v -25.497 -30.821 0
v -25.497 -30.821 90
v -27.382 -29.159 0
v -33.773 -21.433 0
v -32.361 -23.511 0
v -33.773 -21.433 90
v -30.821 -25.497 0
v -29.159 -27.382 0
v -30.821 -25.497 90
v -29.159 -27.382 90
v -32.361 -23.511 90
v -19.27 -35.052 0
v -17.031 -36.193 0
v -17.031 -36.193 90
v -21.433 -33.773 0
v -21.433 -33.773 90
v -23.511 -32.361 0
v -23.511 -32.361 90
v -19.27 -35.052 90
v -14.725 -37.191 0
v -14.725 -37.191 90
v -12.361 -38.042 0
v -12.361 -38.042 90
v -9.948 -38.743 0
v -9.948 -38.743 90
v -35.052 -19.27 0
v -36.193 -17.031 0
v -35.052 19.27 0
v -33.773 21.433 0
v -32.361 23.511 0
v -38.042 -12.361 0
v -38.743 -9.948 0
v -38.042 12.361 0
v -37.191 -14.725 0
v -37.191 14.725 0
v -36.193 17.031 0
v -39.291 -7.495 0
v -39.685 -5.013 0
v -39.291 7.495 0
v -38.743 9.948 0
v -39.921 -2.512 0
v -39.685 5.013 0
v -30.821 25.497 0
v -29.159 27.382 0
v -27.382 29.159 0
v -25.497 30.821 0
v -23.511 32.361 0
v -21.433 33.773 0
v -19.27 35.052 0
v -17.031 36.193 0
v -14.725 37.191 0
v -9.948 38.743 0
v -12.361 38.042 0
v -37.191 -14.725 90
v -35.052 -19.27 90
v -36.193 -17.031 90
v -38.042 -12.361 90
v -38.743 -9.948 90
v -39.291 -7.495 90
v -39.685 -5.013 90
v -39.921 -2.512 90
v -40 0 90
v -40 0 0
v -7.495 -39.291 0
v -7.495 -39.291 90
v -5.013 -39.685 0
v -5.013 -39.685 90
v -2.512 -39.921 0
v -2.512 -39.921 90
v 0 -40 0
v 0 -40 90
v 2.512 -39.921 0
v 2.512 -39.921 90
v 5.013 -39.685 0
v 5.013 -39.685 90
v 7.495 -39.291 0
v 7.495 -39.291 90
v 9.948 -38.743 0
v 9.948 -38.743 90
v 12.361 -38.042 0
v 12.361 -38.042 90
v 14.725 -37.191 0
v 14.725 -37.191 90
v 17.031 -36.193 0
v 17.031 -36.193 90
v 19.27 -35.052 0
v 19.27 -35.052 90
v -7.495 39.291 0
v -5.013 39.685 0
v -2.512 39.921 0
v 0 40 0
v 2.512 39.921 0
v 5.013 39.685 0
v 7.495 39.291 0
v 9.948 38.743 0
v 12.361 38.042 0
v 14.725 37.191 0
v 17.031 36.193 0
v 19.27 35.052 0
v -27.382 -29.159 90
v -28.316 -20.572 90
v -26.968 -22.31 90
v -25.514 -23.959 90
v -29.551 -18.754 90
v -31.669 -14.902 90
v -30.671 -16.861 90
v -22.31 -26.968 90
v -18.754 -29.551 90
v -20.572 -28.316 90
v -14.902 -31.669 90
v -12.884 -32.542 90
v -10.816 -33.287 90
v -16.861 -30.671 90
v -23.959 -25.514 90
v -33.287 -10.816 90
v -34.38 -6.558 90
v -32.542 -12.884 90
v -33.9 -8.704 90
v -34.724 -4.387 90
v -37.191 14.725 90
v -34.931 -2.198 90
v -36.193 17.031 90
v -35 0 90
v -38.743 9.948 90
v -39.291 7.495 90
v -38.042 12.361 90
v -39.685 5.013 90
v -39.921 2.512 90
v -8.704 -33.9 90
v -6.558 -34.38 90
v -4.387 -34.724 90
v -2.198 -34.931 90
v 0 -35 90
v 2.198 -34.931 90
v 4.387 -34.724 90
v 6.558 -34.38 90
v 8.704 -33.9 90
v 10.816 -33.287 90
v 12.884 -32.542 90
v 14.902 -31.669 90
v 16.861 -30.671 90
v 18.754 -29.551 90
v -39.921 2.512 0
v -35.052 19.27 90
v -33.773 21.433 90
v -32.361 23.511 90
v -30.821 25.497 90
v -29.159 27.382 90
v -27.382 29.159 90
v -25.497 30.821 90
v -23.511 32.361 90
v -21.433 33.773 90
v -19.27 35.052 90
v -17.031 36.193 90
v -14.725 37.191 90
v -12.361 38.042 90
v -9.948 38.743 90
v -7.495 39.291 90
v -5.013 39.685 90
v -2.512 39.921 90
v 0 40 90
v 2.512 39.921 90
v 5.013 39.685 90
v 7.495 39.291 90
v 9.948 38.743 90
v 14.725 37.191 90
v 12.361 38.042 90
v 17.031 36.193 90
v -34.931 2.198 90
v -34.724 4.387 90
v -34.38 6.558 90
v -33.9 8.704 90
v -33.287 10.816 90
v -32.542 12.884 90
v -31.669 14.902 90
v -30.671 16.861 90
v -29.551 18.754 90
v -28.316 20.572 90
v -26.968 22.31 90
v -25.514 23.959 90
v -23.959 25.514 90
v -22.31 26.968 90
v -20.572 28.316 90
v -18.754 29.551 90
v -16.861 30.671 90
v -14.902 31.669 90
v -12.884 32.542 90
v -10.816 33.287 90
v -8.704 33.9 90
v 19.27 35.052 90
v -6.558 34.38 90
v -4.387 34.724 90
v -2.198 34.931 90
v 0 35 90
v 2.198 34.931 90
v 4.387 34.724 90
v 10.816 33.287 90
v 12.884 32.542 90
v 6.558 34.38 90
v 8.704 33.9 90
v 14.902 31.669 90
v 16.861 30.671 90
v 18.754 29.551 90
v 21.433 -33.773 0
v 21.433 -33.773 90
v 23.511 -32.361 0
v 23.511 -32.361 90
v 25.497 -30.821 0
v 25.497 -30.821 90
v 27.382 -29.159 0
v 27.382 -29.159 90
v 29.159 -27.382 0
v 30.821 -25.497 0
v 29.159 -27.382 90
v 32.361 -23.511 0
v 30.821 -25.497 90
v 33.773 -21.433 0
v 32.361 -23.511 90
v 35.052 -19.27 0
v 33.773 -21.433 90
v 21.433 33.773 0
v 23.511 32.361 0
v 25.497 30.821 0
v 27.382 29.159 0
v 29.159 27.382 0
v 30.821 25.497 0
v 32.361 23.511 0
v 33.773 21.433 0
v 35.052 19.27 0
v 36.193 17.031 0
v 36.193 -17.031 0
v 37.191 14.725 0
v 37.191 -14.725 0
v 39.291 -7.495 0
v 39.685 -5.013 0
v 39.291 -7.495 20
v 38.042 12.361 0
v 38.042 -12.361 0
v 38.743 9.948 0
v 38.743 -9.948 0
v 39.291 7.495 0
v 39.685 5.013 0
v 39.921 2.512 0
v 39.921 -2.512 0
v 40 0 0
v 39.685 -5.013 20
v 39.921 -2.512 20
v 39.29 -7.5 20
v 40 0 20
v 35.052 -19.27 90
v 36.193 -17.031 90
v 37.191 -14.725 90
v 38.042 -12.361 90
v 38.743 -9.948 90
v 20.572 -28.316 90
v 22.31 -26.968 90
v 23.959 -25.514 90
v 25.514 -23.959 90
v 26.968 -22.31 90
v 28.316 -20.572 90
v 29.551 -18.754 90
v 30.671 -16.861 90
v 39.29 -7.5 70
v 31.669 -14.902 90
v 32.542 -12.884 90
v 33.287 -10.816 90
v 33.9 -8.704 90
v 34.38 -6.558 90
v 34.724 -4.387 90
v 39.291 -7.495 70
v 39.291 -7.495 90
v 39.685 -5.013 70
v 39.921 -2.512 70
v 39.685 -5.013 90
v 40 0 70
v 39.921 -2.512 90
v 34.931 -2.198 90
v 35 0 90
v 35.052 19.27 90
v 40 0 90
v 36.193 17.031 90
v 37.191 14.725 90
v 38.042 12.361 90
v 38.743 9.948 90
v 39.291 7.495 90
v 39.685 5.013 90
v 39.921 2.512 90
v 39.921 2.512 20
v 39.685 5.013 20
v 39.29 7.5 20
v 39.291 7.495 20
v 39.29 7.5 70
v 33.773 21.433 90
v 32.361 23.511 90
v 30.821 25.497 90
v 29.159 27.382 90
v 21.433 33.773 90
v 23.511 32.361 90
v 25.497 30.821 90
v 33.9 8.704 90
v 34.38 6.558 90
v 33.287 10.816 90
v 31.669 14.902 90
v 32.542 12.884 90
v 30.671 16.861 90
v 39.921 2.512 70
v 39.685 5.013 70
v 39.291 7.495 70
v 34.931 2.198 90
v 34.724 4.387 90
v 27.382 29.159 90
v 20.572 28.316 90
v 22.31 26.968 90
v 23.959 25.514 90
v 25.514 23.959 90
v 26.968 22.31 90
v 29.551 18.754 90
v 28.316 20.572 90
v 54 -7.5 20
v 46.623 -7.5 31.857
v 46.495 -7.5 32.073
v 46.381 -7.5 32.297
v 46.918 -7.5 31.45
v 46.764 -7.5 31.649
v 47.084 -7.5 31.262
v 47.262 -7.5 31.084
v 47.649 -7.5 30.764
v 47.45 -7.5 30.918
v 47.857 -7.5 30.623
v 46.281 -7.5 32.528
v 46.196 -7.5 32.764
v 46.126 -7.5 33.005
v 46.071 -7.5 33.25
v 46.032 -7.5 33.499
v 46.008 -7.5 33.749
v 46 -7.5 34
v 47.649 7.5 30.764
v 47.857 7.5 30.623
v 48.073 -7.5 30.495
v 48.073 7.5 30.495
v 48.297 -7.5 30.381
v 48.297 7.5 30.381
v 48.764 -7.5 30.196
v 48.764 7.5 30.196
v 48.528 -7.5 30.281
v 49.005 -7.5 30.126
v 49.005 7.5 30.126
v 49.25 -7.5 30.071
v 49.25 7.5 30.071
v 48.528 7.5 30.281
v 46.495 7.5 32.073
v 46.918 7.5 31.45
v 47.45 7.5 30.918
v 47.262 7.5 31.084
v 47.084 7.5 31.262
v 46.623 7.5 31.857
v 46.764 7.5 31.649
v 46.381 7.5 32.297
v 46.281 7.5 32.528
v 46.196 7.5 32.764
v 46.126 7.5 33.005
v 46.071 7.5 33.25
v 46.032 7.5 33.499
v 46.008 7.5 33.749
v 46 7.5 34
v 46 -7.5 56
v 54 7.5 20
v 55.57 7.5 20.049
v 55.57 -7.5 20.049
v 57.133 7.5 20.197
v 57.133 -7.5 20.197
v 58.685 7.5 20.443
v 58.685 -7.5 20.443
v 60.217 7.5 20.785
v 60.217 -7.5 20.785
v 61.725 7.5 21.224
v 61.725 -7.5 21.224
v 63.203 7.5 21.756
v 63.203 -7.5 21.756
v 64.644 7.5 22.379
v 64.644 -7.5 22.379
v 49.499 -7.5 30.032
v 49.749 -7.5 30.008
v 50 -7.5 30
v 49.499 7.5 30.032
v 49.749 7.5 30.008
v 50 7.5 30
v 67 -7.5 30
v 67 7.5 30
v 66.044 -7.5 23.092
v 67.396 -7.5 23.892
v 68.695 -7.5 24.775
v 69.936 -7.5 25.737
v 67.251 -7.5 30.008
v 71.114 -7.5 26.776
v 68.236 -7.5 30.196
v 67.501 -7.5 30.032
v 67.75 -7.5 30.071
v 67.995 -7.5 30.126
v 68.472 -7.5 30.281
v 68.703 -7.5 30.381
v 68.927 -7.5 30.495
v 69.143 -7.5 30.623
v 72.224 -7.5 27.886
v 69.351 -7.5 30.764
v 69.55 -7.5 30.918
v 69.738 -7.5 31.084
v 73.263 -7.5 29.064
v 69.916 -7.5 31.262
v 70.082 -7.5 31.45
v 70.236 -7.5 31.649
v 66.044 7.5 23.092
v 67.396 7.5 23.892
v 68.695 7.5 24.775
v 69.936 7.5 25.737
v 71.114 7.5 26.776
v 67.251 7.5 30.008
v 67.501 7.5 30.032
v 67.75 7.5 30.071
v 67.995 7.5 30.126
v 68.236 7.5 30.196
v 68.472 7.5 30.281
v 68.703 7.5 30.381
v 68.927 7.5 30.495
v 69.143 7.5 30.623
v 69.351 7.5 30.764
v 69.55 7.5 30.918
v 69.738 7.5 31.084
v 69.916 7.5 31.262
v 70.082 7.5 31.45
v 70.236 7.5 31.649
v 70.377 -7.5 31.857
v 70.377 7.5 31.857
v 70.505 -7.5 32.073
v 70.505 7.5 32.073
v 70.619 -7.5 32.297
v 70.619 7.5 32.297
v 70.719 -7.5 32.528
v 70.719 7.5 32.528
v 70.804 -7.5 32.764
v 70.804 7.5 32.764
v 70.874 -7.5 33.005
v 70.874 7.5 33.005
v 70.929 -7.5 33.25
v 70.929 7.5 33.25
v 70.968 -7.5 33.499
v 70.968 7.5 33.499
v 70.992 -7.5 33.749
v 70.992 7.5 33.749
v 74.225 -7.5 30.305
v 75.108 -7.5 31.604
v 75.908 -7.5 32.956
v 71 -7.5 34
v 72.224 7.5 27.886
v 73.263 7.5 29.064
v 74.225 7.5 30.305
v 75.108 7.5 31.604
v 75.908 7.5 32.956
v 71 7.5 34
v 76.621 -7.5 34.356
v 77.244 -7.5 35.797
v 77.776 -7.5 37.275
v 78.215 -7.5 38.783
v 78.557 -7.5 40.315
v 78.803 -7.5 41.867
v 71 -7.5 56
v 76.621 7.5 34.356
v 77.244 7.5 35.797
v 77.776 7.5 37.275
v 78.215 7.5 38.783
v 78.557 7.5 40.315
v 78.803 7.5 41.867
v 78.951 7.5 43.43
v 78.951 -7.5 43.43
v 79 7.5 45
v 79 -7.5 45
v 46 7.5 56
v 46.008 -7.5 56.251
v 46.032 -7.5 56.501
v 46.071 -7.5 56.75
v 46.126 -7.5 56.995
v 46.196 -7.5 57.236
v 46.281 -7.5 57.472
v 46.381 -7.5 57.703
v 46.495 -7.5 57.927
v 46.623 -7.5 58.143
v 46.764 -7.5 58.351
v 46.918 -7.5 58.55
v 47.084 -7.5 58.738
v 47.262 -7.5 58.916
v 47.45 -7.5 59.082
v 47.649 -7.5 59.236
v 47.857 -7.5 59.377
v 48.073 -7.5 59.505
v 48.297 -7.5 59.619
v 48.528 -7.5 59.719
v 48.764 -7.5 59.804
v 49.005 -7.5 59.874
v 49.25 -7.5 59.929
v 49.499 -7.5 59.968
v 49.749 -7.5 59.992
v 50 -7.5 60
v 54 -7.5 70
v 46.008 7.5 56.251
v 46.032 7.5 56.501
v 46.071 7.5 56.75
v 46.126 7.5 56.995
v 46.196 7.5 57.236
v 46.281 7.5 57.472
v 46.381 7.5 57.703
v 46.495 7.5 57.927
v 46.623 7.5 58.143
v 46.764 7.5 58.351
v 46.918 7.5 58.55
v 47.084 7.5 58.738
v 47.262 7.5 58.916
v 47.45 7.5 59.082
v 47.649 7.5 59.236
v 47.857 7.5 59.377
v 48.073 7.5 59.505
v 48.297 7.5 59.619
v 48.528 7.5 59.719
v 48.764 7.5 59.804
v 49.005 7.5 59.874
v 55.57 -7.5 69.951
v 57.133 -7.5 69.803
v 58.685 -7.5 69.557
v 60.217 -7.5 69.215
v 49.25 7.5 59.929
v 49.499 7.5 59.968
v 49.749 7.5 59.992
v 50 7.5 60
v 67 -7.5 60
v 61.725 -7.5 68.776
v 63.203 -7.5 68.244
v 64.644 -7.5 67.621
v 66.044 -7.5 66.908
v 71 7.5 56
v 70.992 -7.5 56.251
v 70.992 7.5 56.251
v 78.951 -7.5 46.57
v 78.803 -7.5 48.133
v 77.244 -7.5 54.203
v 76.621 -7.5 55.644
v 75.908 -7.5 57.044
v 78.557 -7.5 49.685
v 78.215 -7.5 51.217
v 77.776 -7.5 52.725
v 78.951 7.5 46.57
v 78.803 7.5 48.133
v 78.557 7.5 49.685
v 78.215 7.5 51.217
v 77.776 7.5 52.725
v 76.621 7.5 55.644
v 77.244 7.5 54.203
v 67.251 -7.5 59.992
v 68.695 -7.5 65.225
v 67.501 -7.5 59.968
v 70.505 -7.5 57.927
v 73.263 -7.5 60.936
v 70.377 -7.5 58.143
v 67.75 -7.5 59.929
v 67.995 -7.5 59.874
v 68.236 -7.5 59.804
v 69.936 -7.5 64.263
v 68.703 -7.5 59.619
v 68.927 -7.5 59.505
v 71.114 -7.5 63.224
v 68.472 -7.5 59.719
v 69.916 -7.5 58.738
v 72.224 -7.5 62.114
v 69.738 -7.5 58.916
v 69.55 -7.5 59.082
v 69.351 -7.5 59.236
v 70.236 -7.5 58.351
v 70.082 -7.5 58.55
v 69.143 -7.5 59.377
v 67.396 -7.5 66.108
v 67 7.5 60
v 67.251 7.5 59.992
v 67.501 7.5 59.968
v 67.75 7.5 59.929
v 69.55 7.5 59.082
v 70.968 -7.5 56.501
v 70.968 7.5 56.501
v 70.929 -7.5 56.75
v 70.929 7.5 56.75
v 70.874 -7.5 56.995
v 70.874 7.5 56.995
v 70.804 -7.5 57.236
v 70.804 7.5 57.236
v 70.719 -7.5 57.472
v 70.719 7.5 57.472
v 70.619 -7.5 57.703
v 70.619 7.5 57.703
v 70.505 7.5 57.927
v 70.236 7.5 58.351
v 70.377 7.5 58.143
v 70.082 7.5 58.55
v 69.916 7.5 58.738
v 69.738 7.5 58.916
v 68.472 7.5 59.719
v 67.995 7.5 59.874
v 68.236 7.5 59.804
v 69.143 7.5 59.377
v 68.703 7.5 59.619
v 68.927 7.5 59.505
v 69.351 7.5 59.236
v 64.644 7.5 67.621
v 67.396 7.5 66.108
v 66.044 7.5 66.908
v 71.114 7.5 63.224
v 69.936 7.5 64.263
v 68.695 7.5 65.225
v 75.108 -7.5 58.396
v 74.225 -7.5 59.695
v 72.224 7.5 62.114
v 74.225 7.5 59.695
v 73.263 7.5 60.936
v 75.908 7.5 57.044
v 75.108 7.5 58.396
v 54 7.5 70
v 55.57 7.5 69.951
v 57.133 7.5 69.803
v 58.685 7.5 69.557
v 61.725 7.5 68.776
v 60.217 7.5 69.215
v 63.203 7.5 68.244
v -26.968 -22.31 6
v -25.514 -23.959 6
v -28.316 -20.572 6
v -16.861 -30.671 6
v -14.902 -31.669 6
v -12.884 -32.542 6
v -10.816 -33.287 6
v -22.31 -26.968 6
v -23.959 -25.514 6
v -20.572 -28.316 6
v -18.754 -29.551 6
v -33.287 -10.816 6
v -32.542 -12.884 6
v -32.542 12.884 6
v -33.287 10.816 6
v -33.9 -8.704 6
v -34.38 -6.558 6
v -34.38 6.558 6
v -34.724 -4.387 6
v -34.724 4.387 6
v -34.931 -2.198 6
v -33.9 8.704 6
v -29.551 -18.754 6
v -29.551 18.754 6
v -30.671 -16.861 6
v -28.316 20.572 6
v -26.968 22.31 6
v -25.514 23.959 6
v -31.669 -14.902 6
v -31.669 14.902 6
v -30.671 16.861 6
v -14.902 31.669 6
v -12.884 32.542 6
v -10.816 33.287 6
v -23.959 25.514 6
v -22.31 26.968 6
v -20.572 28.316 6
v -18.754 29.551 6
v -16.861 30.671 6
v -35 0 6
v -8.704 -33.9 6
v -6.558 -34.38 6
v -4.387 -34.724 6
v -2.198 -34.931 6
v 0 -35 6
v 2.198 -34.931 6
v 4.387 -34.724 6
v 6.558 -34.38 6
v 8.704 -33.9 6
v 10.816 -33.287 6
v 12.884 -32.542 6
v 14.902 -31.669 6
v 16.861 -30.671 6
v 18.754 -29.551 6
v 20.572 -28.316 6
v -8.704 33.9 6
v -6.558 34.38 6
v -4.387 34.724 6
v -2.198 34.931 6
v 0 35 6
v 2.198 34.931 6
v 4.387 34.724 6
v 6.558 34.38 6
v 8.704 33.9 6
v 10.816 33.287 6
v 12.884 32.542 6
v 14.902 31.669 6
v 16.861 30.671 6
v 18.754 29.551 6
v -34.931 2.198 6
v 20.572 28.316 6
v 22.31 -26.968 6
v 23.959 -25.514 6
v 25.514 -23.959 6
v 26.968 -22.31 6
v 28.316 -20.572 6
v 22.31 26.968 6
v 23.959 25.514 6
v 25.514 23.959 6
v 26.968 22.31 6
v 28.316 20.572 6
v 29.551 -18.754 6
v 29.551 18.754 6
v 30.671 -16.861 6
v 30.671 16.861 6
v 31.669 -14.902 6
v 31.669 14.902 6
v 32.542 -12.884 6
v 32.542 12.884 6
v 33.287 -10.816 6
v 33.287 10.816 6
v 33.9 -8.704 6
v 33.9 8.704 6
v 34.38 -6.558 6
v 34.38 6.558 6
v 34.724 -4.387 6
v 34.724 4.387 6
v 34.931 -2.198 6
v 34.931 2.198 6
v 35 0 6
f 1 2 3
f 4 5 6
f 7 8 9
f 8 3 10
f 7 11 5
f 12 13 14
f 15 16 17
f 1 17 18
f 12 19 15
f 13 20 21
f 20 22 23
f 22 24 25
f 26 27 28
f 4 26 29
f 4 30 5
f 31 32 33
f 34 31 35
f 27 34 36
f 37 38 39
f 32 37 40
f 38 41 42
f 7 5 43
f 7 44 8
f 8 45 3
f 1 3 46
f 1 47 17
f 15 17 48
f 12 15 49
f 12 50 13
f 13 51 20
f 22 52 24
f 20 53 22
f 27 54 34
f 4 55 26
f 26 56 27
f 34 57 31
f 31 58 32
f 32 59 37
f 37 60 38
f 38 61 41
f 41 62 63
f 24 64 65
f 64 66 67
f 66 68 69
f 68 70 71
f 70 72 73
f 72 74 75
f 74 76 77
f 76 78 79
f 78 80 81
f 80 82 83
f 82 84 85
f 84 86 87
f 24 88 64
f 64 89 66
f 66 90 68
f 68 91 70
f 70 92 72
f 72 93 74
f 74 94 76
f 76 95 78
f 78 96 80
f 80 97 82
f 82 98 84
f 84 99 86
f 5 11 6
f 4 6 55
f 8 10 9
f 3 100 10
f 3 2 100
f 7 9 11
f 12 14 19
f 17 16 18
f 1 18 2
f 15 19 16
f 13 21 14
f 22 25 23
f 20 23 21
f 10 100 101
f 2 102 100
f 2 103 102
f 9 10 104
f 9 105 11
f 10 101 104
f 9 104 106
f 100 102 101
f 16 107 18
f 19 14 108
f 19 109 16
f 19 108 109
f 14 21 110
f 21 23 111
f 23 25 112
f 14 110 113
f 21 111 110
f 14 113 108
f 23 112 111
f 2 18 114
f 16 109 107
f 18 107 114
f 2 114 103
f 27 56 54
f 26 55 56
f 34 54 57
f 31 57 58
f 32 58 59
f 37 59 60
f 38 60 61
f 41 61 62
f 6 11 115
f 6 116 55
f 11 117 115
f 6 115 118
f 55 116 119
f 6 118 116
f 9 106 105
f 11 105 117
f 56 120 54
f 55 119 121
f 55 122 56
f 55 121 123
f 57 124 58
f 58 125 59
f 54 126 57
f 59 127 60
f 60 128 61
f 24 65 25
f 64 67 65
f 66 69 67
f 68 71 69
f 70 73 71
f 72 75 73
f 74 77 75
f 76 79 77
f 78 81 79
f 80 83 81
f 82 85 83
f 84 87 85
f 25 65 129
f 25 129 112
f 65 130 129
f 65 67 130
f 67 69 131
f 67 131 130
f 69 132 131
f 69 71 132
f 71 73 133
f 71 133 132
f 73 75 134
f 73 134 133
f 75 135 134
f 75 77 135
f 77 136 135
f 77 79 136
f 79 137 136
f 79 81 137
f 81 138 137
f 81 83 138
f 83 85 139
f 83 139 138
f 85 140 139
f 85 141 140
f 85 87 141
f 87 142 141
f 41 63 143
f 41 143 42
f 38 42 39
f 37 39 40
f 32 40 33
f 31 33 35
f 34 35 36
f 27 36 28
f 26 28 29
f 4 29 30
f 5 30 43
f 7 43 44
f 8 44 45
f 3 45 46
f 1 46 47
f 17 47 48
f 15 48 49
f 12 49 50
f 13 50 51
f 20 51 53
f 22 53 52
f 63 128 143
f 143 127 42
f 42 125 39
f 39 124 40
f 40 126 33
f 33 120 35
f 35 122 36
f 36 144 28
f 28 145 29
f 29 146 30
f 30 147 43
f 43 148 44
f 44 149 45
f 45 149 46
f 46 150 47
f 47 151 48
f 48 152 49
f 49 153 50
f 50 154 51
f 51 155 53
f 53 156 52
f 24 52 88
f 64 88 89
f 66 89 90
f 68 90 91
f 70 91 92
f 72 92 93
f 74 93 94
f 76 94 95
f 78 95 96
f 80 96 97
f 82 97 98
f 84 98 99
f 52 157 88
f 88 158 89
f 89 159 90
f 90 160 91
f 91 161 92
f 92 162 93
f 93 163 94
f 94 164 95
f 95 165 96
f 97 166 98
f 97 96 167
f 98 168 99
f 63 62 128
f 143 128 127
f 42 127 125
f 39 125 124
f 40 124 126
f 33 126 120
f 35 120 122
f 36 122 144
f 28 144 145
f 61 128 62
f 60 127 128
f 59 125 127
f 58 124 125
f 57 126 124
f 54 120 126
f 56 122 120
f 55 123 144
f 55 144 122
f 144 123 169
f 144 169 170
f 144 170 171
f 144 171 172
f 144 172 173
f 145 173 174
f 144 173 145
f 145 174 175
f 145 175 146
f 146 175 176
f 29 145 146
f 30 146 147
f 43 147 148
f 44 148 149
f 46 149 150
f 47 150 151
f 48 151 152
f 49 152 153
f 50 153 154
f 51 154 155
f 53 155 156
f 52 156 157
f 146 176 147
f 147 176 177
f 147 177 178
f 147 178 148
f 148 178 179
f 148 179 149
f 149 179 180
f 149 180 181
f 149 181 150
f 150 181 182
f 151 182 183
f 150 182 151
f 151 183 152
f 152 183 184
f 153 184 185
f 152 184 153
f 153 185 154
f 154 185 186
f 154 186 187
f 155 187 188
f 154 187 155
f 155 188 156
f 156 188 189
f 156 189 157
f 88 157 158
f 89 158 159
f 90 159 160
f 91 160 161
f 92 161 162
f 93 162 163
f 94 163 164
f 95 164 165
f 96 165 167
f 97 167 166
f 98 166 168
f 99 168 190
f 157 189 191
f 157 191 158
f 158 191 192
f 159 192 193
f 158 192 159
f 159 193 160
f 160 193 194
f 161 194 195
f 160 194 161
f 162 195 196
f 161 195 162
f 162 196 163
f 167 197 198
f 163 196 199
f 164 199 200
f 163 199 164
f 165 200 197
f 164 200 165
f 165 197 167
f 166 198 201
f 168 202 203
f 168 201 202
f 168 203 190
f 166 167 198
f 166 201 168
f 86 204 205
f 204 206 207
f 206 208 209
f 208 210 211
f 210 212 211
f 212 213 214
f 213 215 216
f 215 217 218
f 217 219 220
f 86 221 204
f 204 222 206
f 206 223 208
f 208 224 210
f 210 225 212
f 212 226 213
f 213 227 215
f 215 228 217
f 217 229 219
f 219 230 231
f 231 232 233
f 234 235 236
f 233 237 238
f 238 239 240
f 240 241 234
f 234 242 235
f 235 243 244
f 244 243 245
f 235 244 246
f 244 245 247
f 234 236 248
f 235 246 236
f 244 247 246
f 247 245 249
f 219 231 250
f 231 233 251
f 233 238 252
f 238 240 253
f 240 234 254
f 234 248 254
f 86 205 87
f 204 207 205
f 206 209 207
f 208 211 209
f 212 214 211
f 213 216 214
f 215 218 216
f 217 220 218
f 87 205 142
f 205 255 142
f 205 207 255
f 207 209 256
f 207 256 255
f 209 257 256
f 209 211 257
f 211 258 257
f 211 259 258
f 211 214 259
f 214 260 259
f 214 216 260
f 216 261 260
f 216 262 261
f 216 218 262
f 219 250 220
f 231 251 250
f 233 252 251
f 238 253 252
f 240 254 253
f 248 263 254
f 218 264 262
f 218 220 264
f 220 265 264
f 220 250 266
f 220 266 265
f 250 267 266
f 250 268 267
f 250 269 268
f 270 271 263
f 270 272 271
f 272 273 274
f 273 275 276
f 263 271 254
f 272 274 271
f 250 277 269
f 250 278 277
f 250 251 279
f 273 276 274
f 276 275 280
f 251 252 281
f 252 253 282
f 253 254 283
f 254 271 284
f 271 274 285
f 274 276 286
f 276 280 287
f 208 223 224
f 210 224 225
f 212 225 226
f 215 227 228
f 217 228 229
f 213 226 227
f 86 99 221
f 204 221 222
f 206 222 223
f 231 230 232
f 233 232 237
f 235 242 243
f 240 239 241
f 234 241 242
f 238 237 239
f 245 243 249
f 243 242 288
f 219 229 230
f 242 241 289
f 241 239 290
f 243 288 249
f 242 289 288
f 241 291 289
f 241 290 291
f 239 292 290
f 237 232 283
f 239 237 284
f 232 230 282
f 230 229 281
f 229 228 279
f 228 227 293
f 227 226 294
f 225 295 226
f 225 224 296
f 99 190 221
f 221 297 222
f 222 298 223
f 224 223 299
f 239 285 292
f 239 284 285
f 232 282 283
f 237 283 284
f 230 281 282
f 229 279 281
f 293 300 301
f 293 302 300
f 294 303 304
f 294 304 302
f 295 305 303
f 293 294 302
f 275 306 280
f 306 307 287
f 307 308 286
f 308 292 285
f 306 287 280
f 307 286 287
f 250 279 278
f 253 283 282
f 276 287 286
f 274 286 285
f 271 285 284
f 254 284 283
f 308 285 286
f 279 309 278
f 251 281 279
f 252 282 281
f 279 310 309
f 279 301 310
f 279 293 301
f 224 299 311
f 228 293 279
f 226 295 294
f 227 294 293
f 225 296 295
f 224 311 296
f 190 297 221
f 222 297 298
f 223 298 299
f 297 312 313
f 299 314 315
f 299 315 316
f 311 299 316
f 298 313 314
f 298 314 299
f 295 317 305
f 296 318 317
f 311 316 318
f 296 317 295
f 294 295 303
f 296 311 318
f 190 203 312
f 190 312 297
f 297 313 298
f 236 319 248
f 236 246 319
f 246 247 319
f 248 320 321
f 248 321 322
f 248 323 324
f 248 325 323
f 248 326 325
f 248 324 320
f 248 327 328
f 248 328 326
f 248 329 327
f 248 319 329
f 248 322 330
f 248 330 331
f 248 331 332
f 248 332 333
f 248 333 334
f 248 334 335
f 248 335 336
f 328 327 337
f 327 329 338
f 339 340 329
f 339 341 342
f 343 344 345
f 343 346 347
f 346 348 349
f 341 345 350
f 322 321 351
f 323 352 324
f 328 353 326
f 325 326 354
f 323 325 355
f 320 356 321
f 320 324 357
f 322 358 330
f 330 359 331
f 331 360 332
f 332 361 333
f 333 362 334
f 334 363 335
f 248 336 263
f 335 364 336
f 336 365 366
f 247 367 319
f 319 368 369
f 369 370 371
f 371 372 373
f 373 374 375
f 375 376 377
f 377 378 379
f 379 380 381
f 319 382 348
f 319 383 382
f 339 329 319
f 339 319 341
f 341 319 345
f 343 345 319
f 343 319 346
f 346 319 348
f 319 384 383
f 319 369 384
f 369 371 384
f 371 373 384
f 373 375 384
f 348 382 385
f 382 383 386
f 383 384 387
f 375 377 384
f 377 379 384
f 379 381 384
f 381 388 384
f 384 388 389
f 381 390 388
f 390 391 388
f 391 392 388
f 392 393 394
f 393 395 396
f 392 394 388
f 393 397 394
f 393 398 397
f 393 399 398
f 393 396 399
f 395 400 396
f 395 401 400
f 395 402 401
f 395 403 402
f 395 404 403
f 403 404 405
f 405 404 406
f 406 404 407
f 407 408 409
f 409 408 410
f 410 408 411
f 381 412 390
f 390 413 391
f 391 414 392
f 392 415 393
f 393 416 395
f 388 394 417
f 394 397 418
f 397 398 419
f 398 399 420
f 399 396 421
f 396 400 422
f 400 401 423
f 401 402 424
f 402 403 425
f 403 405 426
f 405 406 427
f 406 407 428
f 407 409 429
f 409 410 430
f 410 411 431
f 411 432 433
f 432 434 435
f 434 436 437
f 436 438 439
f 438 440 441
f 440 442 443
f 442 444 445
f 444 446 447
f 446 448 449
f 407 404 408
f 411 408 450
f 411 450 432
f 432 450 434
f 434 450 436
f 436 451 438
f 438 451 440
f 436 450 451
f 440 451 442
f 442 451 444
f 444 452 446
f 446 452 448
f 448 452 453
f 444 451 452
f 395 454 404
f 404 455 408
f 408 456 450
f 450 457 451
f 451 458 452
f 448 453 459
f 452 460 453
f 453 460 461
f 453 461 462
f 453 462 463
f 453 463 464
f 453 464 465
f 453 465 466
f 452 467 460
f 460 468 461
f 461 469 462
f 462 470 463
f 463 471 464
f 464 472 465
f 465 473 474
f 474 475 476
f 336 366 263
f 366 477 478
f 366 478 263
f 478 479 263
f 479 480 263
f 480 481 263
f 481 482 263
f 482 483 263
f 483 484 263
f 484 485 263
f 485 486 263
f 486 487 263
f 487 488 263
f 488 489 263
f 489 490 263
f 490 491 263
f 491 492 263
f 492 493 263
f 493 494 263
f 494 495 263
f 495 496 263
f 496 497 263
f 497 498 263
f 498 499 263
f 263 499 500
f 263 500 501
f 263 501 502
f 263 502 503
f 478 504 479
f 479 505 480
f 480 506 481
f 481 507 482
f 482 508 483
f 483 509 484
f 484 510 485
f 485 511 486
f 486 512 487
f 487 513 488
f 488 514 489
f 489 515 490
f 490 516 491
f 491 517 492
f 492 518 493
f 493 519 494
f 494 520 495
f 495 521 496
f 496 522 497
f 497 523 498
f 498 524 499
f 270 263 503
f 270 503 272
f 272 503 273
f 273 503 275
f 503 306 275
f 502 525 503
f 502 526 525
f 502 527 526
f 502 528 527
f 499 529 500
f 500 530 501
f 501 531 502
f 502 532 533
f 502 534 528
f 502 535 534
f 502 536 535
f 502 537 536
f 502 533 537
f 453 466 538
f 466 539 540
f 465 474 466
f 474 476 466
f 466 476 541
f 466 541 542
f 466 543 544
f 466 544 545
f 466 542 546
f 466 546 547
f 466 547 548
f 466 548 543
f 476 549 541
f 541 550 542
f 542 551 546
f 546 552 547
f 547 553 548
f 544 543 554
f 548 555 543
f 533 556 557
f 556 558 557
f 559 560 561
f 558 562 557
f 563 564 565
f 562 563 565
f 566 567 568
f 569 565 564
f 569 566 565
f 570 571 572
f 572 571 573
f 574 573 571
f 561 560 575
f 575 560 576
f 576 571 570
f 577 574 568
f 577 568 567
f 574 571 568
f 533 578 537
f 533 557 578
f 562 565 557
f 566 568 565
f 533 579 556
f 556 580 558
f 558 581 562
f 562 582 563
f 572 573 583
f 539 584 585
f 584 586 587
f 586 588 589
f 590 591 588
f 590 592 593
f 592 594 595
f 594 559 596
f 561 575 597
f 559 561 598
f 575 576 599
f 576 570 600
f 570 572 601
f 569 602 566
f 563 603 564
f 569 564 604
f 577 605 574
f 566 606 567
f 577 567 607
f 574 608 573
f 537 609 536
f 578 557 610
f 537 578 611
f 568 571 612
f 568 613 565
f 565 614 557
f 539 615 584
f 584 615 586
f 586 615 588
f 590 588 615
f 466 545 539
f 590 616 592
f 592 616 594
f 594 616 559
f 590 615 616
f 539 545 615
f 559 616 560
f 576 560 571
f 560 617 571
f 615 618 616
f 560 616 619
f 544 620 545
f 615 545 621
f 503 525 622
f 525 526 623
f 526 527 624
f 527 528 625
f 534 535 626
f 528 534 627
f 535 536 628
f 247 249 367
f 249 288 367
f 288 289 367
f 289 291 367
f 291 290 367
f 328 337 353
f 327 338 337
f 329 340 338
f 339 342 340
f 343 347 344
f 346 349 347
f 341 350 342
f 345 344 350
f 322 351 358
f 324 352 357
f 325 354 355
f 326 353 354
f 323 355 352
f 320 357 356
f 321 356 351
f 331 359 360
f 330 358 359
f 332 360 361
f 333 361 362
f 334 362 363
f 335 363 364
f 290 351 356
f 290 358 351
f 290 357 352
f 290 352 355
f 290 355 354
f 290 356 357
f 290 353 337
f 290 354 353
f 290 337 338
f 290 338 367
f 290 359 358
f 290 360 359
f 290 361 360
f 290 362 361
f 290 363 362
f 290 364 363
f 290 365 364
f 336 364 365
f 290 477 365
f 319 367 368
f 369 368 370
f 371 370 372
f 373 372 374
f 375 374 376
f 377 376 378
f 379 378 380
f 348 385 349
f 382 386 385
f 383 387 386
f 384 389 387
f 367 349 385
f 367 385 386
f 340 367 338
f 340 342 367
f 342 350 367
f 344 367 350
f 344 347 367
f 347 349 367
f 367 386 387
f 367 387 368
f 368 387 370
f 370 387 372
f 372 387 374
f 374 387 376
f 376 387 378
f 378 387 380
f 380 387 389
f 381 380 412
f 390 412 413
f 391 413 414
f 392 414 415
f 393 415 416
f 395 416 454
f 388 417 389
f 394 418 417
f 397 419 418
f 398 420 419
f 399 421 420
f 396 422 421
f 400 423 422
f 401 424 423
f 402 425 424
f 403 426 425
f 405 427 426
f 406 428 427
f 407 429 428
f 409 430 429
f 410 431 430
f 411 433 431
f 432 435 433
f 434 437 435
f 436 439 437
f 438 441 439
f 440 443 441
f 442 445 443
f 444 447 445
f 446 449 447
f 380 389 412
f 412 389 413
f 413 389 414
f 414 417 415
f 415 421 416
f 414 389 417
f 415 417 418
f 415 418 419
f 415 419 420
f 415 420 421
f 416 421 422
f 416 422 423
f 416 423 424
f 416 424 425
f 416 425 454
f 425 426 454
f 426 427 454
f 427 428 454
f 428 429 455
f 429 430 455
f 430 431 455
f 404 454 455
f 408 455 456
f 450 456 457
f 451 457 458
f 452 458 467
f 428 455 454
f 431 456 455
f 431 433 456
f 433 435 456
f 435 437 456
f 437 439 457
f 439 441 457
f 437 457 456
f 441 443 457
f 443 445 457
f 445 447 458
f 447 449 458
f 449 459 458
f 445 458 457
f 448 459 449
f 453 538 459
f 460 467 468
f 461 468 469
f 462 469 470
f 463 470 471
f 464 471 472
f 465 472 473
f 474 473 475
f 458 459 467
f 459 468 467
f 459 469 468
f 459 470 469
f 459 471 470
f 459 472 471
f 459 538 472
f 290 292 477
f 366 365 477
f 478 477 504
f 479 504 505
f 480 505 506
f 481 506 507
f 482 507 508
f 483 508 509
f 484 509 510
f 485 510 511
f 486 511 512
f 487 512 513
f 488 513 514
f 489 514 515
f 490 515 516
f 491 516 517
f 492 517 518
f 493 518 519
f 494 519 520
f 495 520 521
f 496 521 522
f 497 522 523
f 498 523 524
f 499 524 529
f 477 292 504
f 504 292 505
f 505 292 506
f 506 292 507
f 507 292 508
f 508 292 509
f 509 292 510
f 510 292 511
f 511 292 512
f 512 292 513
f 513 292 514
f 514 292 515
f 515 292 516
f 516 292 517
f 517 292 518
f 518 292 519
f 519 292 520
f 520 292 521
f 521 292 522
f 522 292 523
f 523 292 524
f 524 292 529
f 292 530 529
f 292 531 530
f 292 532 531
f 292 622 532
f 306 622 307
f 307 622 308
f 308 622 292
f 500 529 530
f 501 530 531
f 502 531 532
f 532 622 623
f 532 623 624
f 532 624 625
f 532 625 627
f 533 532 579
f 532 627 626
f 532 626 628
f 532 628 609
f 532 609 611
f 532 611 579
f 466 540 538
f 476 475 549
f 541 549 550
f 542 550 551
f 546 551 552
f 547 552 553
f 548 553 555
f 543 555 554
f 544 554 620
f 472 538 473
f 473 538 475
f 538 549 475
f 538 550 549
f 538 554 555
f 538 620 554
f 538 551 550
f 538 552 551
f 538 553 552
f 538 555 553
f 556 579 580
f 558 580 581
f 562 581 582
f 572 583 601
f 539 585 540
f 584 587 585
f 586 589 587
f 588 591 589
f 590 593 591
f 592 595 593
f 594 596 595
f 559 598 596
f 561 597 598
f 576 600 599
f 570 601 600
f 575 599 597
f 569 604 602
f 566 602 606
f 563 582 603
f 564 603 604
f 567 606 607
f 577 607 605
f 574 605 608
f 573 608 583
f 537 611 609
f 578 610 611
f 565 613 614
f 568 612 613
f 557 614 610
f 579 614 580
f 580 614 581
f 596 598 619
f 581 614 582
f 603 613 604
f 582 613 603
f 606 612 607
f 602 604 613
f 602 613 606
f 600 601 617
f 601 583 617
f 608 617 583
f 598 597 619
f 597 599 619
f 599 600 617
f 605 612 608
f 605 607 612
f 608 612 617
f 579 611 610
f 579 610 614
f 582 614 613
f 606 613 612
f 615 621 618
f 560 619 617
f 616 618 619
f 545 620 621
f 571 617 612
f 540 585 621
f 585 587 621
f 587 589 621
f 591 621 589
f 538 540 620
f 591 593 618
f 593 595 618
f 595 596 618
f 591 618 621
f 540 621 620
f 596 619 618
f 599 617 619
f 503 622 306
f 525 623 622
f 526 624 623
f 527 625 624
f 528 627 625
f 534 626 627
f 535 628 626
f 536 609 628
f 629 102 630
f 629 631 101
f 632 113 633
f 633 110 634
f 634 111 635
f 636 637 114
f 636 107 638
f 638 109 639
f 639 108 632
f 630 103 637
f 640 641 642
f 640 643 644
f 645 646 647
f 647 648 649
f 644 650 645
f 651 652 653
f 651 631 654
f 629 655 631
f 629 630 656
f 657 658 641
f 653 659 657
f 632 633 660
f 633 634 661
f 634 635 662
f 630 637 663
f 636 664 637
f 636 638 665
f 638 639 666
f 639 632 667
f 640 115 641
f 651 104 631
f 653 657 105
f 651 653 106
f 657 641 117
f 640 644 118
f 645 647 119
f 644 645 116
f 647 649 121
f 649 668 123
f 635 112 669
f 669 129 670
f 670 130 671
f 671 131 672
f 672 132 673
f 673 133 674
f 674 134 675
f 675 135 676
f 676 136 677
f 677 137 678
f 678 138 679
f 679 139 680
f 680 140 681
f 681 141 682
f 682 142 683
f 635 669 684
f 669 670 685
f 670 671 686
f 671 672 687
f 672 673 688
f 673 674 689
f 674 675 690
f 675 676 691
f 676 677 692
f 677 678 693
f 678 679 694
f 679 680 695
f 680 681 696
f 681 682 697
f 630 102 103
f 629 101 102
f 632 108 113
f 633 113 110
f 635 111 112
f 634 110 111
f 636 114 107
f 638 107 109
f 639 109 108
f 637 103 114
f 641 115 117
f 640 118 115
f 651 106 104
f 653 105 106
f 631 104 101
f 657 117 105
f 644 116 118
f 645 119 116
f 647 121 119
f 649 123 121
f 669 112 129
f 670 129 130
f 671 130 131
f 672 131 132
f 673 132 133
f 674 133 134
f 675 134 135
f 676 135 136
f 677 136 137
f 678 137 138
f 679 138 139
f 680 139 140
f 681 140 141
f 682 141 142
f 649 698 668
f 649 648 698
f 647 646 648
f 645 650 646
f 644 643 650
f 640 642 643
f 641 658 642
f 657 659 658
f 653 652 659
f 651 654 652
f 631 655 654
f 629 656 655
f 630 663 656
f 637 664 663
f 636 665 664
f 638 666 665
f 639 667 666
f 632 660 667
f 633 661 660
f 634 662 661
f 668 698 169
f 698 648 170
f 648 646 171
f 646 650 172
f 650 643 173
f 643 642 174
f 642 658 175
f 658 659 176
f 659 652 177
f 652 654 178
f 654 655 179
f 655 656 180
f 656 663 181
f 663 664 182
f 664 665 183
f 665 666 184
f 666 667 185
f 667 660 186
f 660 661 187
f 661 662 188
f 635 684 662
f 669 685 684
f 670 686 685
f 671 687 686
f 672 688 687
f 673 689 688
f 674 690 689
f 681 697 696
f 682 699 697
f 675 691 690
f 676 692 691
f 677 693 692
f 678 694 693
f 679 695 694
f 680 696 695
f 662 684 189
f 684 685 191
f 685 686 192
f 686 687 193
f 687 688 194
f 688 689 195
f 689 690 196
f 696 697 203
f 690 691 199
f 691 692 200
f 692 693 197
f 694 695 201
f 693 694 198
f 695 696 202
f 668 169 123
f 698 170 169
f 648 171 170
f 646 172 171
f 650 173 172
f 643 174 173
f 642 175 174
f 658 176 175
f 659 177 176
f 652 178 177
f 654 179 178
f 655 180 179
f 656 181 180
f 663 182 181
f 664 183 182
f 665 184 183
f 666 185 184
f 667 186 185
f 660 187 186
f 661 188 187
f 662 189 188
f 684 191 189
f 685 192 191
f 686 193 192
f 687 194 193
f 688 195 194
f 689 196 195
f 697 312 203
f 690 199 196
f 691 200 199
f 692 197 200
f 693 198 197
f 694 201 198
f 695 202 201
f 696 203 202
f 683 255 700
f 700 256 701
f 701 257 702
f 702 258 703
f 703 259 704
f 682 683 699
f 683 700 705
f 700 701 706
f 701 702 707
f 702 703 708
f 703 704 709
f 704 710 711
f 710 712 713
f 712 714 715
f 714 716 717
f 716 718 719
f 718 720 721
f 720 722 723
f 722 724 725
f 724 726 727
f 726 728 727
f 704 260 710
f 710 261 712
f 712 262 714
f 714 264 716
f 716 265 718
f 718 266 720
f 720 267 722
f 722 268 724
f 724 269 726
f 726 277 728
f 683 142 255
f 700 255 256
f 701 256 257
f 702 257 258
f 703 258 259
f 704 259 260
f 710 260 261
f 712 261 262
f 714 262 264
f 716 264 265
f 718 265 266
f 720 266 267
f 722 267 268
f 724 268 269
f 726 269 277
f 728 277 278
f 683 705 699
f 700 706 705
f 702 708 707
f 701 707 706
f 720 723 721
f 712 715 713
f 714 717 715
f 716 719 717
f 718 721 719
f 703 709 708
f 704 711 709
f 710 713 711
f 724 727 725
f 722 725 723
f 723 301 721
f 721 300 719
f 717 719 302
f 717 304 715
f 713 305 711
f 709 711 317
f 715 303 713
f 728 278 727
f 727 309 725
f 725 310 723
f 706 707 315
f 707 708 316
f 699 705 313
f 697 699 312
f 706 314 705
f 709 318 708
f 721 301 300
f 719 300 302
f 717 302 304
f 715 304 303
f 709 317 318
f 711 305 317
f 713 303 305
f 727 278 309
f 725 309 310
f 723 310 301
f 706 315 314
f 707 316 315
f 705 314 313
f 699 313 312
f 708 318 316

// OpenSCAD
$fn = 100;

difference() {
    union() {
        // 本体外径 (Mug Outer Body)
        cylinder(h=90, r=40);

        // 取手 (Handle) - +X軸方向
        rotate([90, 0, 0])
        linear_extrude(height=15, center=true)
        difference() {
            // 取手の外形 (D字形状: 外側が半円、本体側が直線)
            hull() {
                translate([30, 20]) square([24, 50]);
                translate([54, 45]) circle(r=25);
            }
            // 取手の内側空間 (高さ30mm × 幅25mm、角を丸めて持ちやすく)
            translate([50, 34]) offset(r=4) square([17, 22]);
        }
    }
    // 内側の中空化 (Mug Inner Cavity)
    translate([0, 0, 6])
        cylinder(h=91, r=35); // 上部のZファイティングを防ぐため高さをわずかに高く設定
}
